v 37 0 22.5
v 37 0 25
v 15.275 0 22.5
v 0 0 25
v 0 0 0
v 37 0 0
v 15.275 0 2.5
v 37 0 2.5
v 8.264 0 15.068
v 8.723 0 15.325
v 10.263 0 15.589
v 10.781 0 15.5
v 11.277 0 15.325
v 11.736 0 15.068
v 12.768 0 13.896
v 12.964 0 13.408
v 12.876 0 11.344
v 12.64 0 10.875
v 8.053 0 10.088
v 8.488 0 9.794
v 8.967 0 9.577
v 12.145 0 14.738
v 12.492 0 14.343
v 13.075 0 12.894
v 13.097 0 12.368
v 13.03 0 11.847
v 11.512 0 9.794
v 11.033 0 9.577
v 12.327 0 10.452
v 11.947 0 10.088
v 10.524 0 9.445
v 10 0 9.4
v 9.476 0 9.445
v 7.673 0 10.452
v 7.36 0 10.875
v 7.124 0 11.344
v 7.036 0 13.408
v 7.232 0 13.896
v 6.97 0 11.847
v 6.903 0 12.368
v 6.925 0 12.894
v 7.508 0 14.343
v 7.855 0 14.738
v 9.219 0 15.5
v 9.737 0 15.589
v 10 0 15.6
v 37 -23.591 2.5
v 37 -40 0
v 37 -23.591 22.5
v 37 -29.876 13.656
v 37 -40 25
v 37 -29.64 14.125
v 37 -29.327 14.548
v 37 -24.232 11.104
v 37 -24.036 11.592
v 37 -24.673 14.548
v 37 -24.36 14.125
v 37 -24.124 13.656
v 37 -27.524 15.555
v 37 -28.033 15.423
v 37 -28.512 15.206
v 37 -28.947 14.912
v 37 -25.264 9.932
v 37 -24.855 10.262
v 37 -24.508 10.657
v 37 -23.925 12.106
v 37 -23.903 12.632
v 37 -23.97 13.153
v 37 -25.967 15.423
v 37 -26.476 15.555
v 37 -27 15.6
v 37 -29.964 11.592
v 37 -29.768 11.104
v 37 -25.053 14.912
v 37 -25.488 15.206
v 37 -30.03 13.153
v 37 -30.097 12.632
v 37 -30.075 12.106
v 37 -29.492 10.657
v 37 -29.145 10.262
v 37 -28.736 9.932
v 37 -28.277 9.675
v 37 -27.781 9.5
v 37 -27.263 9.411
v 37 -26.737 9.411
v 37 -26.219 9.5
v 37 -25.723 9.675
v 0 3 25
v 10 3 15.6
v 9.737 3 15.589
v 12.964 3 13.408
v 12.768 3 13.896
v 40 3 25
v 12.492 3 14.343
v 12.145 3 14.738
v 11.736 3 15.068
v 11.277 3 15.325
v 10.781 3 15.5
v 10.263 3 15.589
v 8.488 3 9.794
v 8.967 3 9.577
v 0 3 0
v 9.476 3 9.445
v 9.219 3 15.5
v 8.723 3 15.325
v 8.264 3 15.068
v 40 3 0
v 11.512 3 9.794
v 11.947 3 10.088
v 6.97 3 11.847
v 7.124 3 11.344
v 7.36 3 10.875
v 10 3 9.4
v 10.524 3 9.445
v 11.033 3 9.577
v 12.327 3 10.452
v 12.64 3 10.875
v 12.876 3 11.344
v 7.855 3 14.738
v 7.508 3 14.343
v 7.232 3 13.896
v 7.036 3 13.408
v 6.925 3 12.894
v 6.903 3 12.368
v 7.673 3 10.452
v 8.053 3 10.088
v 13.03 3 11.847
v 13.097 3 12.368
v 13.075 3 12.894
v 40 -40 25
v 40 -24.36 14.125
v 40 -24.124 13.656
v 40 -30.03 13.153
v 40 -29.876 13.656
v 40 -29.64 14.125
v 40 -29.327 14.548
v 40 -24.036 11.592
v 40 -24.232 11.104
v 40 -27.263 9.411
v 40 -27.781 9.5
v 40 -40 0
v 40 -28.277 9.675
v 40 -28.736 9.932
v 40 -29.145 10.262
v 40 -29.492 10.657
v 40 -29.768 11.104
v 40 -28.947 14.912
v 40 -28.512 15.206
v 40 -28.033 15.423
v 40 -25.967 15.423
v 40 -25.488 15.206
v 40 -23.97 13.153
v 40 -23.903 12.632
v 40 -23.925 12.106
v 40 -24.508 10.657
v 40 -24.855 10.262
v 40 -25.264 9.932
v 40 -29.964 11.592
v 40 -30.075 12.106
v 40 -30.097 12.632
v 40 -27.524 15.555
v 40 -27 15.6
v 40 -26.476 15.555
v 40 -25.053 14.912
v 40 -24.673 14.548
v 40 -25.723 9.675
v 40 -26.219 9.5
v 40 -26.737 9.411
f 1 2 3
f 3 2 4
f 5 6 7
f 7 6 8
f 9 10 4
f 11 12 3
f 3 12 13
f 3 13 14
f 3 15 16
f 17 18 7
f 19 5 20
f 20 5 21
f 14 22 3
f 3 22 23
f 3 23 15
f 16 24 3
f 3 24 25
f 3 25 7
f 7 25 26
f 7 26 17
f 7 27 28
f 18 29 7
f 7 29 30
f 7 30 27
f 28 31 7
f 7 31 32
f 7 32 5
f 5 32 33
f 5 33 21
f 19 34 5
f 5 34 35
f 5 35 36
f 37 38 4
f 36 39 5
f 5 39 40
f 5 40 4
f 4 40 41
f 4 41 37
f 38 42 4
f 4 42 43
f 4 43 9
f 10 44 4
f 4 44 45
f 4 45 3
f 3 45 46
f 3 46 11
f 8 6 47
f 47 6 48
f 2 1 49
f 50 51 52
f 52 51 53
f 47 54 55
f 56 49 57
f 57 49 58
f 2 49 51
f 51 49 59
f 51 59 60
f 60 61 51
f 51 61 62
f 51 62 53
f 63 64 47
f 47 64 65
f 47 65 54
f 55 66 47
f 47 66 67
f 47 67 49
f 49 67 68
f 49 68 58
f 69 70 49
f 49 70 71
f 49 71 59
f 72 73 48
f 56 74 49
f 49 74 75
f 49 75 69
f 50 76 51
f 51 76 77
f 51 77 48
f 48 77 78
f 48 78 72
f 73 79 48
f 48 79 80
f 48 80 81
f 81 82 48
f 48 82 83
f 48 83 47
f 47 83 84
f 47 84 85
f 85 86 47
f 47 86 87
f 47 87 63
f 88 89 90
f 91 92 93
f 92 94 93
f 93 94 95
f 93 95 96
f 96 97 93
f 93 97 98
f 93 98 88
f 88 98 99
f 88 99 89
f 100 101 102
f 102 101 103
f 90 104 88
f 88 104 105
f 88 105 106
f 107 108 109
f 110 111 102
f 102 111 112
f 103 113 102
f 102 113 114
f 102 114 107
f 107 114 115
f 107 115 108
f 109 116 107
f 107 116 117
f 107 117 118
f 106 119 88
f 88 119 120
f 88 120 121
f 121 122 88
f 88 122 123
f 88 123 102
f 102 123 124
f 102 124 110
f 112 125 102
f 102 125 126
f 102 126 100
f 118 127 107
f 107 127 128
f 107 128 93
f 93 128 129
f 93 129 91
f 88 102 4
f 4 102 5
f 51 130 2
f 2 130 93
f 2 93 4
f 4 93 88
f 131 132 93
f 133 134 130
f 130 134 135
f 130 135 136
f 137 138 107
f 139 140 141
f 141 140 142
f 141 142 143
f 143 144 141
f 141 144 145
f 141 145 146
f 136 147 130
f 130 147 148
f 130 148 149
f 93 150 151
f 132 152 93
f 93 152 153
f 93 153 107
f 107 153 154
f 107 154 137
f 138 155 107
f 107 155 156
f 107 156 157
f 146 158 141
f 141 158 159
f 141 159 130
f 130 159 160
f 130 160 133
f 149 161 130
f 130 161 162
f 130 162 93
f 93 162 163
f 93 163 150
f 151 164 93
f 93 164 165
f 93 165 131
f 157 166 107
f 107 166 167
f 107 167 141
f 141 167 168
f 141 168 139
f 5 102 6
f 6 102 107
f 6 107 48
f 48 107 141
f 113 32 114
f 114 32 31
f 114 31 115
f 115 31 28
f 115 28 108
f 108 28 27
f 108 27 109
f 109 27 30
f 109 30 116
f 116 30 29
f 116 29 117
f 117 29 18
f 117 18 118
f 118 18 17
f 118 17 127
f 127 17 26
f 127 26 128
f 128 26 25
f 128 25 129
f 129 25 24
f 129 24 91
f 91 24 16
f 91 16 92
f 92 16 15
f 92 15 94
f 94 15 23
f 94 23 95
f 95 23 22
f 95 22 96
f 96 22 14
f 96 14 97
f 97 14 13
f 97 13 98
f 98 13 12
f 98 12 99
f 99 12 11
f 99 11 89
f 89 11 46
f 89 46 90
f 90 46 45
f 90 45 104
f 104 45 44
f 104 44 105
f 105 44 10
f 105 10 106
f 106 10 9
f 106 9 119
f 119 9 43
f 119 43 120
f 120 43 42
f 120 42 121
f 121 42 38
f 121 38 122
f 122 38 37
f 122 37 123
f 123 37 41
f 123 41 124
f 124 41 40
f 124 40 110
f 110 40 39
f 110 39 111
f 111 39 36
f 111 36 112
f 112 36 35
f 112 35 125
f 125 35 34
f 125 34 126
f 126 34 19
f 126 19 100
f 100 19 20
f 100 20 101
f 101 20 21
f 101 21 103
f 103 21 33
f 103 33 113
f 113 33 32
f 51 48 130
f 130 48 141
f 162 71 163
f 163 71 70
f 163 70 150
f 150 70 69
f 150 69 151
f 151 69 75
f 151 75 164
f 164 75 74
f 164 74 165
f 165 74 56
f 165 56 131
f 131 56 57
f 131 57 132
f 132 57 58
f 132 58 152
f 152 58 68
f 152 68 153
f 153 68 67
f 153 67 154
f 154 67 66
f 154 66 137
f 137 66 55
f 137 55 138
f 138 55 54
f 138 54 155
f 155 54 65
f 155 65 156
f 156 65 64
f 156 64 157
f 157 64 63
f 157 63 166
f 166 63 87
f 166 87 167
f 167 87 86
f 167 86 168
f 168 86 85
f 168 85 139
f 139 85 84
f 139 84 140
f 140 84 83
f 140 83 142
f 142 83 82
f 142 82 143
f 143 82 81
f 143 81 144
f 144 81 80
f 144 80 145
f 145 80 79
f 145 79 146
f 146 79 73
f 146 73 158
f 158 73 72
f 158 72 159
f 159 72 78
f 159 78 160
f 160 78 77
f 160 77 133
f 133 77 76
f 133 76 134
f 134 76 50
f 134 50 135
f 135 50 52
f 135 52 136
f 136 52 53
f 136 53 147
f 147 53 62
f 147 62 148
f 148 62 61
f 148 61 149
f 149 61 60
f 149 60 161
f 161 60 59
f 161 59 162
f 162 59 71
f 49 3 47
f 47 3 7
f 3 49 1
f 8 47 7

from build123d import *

# Parameters (mm, degrees)
SKETCH1_W           = 40
SKETCH1_H           = 25
SKETCH1_R           = 3.1
BOSS_EXTRUDE1_DEPTH = 3
SKETCH2_W           = 3
SKETCH2_H           = 25
BOSS_EXTRUDE2_DEPTH = 40
SKETCH3_R           = 3.1
CUT_EXTRUDE1_DEPTH  = 60.949979149
BOSS_EXTRUDE3_DEPTH = 10


with BuildPart() as part:
    # Sketch1 → Boss-Extrude1 (new body)
    with BuildSketch(Plane(origin=(0, 0, 0), x_dir=(1, 0, 0), z_dir=(0, 1, 0))):
        with Locations((20, -12.5)):
            Rectangle(SKETCH1_W, SKETCH1_H)
        with Locations(Location((10, -12.5, 0), (0, 0, 270))):
            Circle(SKETCH1_R, mode=Mode.SUBTRACT)
    extrude(amount=BOSS_EXTRUDE1_DEPTH)

    # Sketch2 → Boss-Extrude2 (add)
    with BuildSketch(Plane.XZ):
        with Locations((38.5, 12.5)):
            Rectangle(SKETCH2_W, SKETCH2_H)
    extrude(amount=BOSS_EXTRUDE2_DEPTH)

    # Sketch3 → Cut-Extrude1 (cut, through all)
    with BuildSketch(Plane.ZY.offset(-37)):
        with Locations((12.5, -27)):
            Circle(SKETCH3_R)
    extrude(amount=-CUT_EXTRUDE1_DEPTH, mode=Mode.SUBTRACT)

    # Sketch4 → Boss-Extrude3 (add, symmetric)
    with BuildSketch(Plane.XY.offset(12.5)):
        Polygon((15.275287554, 0), (37, -23.590932737), (37, 0), align=None)
    extrude(amount=BOSS_EXTRUDE3_DEPTH, both=True)


solid = part.part
